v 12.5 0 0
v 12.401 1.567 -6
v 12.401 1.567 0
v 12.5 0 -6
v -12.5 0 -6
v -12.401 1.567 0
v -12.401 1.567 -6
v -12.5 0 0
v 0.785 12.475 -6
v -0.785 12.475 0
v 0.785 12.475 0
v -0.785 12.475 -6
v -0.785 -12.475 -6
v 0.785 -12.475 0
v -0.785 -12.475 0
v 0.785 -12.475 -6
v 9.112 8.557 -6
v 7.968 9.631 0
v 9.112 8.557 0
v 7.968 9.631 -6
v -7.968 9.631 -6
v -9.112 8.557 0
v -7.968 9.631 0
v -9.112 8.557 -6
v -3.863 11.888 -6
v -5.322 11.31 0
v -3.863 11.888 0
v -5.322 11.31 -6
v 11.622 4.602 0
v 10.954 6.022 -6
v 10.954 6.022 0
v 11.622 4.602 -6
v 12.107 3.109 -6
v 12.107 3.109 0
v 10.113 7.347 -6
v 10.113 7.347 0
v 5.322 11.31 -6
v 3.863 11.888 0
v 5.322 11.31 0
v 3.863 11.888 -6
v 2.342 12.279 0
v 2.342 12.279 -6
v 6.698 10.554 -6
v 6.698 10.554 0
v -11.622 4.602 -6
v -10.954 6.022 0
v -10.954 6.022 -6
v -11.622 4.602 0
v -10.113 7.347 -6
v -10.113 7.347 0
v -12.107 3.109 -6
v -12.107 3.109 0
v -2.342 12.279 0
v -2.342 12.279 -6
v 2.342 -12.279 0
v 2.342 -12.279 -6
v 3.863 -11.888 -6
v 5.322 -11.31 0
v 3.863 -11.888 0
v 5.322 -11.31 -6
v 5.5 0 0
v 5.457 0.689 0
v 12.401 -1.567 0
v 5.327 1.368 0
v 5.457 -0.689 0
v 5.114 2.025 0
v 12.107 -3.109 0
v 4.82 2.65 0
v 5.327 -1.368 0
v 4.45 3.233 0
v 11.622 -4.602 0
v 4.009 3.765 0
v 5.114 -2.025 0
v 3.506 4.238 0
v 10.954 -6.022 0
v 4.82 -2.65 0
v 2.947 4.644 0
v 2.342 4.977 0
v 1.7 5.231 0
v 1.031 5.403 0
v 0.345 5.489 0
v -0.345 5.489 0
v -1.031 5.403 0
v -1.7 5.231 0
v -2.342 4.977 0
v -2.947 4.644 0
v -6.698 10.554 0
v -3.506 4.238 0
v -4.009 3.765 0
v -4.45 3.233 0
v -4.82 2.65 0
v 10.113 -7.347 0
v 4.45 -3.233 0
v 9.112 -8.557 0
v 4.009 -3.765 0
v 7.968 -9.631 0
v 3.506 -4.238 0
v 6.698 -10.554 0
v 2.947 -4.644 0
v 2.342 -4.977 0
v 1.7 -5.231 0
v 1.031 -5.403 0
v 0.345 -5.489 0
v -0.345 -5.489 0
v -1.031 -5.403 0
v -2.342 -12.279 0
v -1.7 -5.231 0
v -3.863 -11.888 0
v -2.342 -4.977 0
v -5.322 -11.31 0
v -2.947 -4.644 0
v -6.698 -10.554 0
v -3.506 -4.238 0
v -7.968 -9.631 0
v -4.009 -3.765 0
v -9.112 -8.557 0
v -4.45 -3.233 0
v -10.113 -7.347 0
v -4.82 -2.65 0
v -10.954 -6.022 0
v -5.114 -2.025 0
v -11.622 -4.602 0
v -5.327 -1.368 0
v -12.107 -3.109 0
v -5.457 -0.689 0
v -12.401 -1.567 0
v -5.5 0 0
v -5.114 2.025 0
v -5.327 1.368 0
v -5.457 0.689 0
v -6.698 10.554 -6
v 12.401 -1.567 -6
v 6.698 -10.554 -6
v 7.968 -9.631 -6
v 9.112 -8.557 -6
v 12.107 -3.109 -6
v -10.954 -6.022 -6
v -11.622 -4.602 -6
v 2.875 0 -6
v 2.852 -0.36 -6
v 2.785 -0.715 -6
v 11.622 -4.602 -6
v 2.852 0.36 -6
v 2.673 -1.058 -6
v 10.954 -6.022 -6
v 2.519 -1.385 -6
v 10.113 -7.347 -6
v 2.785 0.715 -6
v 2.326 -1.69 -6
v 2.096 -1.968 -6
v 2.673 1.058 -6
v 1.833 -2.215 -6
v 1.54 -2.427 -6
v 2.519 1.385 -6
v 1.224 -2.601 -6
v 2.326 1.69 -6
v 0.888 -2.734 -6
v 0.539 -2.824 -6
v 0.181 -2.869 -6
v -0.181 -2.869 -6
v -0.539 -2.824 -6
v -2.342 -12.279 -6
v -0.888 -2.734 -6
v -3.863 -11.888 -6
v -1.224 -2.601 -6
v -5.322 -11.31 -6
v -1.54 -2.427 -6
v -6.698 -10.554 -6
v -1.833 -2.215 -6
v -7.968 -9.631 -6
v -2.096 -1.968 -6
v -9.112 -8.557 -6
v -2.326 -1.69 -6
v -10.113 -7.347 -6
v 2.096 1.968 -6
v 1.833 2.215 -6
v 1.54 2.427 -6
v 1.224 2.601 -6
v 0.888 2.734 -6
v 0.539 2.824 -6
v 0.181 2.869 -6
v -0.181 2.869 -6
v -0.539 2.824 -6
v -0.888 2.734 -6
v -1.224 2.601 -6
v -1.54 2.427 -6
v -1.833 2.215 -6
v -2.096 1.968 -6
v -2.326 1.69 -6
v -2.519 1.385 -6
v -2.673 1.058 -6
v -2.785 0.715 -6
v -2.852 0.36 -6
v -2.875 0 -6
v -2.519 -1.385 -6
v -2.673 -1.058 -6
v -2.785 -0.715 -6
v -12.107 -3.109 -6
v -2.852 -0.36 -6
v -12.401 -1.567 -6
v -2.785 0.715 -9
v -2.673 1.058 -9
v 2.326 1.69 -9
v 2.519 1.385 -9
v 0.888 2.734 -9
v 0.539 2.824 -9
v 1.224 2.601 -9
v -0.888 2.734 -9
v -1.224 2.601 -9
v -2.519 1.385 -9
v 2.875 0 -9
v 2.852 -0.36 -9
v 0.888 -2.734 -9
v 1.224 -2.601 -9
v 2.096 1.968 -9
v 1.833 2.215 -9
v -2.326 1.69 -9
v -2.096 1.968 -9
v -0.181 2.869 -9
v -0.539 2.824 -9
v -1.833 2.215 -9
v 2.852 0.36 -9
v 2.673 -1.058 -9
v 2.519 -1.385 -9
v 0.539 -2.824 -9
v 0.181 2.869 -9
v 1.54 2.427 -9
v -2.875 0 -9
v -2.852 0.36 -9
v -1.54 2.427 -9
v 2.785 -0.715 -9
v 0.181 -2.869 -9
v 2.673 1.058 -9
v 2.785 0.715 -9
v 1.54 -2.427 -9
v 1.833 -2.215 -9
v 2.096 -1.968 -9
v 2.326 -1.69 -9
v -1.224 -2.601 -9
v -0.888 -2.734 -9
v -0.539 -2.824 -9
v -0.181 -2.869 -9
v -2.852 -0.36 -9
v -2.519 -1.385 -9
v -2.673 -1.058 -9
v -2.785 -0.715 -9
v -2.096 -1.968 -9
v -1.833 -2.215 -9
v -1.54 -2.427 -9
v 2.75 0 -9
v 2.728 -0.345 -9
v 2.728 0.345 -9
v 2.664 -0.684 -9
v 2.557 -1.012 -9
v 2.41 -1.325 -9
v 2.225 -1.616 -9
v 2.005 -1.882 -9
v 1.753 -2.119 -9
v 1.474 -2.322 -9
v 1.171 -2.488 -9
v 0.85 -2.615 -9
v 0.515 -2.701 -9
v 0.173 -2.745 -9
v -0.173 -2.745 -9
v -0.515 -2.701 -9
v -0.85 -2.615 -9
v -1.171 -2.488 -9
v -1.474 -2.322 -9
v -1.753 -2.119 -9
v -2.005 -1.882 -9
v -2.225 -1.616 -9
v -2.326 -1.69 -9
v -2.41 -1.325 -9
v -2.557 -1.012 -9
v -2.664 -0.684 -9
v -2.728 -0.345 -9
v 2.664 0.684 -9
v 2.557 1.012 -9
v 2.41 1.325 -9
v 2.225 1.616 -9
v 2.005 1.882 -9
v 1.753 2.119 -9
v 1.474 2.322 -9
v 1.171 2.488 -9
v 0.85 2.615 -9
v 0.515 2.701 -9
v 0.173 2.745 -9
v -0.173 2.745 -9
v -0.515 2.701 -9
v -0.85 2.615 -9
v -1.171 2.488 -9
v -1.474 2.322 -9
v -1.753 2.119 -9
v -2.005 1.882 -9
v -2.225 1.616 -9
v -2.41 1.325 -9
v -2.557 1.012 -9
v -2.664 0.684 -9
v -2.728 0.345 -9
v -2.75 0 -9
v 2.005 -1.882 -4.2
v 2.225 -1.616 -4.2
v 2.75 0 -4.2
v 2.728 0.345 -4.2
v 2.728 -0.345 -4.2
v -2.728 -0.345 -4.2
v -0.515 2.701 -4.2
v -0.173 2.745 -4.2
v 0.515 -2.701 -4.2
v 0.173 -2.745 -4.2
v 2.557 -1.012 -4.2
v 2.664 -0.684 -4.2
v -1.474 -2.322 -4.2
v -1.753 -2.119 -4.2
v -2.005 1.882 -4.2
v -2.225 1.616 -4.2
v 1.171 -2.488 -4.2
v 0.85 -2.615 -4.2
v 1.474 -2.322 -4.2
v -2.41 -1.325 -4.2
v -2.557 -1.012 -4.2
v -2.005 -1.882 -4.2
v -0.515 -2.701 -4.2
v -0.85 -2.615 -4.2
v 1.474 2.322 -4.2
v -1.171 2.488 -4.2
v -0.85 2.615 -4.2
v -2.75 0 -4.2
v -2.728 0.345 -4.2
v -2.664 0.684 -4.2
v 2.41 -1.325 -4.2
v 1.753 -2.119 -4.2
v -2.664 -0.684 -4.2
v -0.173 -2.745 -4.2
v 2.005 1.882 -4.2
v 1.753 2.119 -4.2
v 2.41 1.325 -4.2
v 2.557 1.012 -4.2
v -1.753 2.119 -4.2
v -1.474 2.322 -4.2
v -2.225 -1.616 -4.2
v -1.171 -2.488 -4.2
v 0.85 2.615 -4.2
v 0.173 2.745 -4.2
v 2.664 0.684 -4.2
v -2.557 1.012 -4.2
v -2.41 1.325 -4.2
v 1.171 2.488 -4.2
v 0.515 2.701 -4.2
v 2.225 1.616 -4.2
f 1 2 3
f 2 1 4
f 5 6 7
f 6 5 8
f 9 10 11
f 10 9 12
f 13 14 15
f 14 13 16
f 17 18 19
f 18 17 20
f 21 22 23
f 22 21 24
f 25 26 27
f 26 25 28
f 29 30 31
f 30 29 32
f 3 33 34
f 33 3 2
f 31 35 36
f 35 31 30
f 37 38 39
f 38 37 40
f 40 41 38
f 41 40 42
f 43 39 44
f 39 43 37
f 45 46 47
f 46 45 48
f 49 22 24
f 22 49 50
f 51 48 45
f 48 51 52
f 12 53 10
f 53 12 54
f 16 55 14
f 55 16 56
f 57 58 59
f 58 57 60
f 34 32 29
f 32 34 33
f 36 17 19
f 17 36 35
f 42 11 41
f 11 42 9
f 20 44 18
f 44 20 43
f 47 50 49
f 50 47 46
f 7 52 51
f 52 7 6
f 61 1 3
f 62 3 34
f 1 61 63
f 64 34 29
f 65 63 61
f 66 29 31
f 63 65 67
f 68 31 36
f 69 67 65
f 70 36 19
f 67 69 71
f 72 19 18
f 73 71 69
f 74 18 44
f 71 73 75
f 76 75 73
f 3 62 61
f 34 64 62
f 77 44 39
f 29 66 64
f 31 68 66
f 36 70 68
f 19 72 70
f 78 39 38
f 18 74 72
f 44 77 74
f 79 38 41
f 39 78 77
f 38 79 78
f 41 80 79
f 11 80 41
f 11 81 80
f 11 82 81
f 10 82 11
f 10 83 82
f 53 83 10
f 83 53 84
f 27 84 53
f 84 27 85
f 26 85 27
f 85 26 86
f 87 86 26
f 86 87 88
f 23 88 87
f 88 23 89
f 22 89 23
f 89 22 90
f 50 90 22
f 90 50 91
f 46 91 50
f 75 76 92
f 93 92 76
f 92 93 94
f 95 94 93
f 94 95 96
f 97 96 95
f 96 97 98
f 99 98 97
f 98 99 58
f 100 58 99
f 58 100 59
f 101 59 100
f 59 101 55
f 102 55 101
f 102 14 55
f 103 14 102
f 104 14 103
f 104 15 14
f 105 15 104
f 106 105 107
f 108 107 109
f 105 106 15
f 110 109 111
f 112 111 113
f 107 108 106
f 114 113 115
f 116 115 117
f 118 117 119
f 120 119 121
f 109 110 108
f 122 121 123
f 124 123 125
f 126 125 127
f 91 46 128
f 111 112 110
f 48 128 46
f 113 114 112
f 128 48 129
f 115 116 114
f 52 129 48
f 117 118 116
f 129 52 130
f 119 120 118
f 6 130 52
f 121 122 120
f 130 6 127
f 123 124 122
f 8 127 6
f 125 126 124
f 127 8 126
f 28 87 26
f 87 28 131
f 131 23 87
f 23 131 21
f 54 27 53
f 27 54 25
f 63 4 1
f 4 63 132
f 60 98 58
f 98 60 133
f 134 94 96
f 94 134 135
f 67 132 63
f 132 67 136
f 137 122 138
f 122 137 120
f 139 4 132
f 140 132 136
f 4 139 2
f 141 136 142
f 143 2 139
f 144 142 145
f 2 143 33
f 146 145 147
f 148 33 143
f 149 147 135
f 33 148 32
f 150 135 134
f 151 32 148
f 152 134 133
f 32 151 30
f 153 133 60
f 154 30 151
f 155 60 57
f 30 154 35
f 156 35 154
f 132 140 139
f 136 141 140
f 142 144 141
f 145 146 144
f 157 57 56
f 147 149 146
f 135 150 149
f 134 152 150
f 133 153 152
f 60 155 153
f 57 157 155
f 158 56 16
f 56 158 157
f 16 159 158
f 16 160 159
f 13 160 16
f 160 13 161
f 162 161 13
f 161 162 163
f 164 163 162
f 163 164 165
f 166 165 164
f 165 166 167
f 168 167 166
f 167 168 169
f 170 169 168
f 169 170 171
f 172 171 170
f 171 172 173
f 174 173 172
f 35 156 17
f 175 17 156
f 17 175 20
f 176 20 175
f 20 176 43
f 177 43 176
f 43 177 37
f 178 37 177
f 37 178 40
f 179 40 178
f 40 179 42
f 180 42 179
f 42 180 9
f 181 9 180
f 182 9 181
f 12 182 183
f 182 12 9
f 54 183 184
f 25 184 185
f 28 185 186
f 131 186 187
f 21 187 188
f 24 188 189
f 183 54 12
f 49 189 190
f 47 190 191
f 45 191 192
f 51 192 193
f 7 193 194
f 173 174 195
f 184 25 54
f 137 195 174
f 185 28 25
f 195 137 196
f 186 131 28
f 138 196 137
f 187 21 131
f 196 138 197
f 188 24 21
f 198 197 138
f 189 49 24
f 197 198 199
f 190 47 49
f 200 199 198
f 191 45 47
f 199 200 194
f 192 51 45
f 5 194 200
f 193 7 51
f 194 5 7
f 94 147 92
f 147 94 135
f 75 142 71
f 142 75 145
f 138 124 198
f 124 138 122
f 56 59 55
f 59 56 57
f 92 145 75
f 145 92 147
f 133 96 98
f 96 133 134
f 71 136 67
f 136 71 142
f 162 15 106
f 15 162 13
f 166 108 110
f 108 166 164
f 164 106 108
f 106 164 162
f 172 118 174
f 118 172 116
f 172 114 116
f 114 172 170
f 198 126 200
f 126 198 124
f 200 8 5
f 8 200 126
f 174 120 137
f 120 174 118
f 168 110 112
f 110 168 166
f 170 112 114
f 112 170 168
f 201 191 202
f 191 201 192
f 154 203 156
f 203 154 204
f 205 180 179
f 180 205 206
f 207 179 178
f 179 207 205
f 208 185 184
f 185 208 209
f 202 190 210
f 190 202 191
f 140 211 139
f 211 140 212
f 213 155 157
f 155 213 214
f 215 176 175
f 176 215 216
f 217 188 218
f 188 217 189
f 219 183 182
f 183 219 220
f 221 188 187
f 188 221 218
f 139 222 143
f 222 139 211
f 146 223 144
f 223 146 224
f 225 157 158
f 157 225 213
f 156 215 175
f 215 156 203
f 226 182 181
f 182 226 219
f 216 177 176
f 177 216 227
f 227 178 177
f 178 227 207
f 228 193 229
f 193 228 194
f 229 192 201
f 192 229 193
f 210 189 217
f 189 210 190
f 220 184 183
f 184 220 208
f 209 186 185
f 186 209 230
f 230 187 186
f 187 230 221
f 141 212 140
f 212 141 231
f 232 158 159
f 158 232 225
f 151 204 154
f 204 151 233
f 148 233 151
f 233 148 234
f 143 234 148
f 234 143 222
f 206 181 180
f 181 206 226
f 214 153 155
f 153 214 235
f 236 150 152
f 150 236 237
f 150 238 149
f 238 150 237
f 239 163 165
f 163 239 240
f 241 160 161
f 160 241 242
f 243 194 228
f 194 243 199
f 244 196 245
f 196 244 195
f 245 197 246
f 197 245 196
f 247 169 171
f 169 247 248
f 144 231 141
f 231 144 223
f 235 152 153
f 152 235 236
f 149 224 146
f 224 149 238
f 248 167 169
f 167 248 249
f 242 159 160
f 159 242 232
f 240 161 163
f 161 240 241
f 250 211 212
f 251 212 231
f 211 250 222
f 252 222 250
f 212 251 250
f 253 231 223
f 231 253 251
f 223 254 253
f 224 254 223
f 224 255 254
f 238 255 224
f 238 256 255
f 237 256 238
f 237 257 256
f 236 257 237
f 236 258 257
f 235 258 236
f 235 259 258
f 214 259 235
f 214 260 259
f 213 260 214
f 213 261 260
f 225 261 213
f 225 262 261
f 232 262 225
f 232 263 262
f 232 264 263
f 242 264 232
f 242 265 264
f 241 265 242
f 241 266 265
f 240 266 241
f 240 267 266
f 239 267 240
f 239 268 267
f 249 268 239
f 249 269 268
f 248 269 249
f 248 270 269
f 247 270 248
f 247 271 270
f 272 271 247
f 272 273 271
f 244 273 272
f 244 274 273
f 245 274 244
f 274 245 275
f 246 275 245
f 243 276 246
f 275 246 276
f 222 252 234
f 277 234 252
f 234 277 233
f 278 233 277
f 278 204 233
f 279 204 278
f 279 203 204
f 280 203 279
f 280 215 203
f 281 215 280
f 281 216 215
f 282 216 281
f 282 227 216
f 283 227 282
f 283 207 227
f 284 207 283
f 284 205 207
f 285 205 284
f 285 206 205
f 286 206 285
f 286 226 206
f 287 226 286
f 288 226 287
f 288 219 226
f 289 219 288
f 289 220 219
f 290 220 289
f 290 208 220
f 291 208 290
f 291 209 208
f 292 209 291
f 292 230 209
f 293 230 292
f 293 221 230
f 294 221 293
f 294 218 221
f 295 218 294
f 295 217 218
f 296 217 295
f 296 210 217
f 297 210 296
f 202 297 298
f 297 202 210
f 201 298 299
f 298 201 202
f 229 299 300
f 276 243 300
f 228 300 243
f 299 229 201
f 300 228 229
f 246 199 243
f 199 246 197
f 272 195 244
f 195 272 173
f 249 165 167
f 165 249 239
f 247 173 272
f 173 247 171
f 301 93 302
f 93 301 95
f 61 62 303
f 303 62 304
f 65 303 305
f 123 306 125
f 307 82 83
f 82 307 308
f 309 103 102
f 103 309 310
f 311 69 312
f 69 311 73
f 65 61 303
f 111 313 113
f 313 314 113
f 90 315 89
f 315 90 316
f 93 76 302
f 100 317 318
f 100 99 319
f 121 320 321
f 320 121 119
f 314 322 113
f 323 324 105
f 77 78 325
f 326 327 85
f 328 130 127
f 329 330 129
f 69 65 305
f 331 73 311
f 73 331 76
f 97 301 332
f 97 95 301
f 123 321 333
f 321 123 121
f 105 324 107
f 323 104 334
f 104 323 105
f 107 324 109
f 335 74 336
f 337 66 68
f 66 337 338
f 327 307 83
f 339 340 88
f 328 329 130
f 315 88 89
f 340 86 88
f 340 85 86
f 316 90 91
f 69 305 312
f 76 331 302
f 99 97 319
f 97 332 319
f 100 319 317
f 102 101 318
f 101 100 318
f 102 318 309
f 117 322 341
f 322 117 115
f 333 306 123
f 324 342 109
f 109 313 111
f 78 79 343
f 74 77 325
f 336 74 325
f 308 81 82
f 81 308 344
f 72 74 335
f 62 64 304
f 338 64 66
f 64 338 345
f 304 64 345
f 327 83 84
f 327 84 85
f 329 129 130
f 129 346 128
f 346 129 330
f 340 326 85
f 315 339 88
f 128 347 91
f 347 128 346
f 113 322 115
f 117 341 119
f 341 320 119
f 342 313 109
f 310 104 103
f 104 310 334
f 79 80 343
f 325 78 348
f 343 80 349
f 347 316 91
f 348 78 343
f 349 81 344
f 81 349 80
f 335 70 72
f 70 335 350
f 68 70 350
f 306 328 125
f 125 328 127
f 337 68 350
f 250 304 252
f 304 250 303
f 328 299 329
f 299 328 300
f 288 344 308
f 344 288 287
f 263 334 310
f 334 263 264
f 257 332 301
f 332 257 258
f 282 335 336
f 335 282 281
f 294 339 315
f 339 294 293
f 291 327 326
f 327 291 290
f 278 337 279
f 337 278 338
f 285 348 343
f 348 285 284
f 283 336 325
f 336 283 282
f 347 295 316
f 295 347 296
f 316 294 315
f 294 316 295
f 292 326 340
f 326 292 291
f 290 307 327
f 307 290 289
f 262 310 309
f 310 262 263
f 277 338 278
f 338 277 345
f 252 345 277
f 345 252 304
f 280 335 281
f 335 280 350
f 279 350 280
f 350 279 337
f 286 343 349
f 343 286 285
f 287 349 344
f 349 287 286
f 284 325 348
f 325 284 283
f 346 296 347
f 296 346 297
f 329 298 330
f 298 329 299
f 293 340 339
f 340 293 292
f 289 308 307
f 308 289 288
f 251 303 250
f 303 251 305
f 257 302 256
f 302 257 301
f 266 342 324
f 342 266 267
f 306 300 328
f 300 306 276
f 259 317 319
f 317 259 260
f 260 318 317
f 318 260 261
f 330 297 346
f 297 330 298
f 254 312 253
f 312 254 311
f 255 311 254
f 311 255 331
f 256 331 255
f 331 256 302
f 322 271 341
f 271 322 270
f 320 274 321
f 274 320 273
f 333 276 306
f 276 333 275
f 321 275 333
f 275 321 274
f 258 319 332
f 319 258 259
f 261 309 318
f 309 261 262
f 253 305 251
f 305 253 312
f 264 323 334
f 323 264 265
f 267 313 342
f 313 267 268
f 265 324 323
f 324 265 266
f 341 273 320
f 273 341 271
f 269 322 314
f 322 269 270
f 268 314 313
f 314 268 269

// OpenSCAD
$fn = 50;


difference() {
	union() {
		translate(v = [0, 0, -6.0000000000]) {
			cylinder(h = 6, r = 12.5000000000);
		}
		#translate(v = [0, 0, -9.0000000000]) {
			cylinder(h = 9, r = 2.8750000000);
		}
	}
	union() {
		translate(v = [0, 0, 0]) {
			rotate(a = [0, 0, 0]) {
				difference() {
					union() {
						translate(v = [0, 0, -9.0000000000]) {
							cylinder(h = 9, r = 2.2500000000);
						}
						translate(v = [0, 0, -4.2000000000]) {
							cylinder(h = 4.2000000000, r1 = 2.7500000000, r2 = 5.5000000000);
						}
						translate(v = [0, 0, -9.0000000000]) {
							cylinder(h = 9, r = 2.7500000000);
						}
						translate(v = [0, 0, -9.0000000000]) {
							cylinder(h = 9, r = 2.2500000000);
						}
					}
					union();
				}
			}
		}
	}
}
